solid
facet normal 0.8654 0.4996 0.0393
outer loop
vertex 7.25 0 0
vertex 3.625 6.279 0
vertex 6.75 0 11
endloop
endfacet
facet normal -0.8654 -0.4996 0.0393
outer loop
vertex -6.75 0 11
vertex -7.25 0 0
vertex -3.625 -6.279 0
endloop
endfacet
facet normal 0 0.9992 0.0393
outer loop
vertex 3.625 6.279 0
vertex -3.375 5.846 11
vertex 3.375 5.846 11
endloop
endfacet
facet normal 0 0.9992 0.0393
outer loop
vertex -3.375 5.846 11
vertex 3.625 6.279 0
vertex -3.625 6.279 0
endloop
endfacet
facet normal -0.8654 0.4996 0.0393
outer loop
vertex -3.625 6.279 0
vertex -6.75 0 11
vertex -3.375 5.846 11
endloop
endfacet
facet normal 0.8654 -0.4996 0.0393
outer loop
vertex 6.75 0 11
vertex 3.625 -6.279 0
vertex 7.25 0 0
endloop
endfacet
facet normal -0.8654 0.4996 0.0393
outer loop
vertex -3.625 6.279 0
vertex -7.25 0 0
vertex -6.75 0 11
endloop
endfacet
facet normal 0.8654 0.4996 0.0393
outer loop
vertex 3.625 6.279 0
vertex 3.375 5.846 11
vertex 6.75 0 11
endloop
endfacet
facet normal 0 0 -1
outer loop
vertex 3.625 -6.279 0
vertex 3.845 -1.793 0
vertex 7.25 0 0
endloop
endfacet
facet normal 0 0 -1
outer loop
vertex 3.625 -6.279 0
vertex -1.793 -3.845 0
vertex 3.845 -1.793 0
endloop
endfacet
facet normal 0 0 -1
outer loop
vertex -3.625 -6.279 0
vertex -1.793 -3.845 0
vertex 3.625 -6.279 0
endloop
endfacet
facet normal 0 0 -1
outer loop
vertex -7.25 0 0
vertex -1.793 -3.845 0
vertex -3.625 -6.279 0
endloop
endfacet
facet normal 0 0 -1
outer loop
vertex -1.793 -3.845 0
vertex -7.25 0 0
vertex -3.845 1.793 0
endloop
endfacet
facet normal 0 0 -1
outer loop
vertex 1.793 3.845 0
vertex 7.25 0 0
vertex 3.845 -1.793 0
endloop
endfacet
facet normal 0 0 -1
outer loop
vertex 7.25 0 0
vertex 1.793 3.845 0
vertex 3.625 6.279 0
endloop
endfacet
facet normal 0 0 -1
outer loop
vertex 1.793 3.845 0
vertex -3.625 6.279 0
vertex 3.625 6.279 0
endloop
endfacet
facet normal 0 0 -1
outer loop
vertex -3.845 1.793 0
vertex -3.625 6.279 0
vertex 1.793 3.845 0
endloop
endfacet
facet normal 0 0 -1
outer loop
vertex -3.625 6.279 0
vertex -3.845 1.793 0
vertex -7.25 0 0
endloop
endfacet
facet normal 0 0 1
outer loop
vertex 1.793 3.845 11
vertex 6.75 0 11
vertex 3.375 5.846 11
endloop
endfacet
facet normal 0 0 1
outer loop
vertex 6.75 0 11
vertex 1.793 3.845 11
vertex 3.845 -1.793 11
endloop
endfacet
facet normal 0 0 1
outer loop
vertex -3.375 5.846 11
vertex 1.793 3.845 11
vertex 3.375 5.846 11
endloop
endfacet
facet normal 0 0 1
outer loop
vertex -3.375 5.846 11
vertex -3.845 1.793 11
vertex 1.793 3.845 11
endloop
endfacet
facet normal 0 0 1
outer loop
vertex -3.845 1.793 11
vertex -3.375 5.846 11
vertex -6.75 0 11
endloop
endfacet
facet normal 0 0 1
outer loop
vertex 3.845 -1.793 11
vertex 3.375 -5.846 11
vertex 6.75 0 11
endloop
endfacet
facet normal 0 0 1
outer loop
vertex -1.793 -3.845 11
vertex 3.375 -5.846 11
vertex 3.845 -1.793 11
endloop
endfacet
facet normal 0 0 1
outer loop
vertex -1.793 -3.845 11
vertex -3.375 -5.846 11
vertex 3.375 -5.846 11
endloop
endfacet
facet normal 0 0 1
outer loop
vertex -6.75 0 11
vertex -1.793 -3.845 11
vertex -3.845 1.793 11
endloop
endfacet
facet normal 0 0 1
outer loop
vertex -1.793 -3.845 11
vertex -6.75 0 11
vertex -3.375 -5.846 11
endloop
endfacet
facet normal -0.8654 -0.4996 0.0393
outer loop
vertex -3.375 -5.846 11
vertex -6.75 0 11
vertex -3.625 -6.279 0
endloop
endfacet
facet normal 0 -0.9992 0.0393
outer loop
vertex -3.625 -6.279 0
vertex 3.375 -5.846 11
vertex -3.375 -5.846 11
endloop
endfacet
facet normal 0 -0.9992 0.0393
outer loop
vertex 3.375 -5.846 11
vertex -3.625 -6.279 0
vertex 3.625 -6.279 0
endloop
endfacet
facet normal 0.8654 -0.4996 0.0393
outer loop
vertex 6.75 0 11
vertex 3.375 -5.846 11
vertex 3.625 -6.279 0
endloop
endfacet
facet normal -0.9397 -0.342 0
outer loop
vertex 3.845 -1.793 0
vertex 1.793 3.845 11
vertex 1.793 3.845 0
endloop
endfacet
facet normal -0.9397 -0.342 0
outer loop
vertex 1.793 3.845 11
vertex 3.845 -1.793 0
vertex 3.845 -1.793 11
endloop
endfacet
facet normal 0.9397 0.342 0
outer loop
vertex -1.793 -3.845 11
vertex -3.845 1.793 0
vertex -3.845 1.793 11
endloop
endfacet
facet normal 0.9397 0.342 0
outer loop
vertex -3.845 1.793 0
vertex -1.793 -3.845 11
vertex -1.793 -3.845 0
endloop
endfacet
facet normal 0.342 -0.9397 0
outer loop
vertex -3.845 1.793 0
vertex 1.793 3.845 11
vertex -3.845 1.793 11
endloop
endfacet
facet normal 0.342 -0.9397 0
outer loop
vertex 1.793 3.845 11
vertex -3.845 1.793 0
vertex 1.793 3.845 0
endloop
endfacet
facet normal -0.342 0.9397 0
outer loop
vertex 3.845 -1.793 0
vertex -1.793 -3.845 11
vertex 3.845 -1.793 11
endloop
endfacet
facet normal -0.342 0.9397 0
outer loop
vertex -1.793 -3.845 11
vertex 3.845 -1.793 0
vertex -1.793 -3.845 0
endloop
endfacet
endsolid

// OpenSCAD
hh=11;
rs=13.5;
rh=14.5;
insided=6.0;
sides=6;

difference(){
cylinder(h=hh, r1=rh/2, r2=rs/2, $fn=sides);
rotate([0,0,20]) cube([insided,insided,hh*3],center=true);
}
